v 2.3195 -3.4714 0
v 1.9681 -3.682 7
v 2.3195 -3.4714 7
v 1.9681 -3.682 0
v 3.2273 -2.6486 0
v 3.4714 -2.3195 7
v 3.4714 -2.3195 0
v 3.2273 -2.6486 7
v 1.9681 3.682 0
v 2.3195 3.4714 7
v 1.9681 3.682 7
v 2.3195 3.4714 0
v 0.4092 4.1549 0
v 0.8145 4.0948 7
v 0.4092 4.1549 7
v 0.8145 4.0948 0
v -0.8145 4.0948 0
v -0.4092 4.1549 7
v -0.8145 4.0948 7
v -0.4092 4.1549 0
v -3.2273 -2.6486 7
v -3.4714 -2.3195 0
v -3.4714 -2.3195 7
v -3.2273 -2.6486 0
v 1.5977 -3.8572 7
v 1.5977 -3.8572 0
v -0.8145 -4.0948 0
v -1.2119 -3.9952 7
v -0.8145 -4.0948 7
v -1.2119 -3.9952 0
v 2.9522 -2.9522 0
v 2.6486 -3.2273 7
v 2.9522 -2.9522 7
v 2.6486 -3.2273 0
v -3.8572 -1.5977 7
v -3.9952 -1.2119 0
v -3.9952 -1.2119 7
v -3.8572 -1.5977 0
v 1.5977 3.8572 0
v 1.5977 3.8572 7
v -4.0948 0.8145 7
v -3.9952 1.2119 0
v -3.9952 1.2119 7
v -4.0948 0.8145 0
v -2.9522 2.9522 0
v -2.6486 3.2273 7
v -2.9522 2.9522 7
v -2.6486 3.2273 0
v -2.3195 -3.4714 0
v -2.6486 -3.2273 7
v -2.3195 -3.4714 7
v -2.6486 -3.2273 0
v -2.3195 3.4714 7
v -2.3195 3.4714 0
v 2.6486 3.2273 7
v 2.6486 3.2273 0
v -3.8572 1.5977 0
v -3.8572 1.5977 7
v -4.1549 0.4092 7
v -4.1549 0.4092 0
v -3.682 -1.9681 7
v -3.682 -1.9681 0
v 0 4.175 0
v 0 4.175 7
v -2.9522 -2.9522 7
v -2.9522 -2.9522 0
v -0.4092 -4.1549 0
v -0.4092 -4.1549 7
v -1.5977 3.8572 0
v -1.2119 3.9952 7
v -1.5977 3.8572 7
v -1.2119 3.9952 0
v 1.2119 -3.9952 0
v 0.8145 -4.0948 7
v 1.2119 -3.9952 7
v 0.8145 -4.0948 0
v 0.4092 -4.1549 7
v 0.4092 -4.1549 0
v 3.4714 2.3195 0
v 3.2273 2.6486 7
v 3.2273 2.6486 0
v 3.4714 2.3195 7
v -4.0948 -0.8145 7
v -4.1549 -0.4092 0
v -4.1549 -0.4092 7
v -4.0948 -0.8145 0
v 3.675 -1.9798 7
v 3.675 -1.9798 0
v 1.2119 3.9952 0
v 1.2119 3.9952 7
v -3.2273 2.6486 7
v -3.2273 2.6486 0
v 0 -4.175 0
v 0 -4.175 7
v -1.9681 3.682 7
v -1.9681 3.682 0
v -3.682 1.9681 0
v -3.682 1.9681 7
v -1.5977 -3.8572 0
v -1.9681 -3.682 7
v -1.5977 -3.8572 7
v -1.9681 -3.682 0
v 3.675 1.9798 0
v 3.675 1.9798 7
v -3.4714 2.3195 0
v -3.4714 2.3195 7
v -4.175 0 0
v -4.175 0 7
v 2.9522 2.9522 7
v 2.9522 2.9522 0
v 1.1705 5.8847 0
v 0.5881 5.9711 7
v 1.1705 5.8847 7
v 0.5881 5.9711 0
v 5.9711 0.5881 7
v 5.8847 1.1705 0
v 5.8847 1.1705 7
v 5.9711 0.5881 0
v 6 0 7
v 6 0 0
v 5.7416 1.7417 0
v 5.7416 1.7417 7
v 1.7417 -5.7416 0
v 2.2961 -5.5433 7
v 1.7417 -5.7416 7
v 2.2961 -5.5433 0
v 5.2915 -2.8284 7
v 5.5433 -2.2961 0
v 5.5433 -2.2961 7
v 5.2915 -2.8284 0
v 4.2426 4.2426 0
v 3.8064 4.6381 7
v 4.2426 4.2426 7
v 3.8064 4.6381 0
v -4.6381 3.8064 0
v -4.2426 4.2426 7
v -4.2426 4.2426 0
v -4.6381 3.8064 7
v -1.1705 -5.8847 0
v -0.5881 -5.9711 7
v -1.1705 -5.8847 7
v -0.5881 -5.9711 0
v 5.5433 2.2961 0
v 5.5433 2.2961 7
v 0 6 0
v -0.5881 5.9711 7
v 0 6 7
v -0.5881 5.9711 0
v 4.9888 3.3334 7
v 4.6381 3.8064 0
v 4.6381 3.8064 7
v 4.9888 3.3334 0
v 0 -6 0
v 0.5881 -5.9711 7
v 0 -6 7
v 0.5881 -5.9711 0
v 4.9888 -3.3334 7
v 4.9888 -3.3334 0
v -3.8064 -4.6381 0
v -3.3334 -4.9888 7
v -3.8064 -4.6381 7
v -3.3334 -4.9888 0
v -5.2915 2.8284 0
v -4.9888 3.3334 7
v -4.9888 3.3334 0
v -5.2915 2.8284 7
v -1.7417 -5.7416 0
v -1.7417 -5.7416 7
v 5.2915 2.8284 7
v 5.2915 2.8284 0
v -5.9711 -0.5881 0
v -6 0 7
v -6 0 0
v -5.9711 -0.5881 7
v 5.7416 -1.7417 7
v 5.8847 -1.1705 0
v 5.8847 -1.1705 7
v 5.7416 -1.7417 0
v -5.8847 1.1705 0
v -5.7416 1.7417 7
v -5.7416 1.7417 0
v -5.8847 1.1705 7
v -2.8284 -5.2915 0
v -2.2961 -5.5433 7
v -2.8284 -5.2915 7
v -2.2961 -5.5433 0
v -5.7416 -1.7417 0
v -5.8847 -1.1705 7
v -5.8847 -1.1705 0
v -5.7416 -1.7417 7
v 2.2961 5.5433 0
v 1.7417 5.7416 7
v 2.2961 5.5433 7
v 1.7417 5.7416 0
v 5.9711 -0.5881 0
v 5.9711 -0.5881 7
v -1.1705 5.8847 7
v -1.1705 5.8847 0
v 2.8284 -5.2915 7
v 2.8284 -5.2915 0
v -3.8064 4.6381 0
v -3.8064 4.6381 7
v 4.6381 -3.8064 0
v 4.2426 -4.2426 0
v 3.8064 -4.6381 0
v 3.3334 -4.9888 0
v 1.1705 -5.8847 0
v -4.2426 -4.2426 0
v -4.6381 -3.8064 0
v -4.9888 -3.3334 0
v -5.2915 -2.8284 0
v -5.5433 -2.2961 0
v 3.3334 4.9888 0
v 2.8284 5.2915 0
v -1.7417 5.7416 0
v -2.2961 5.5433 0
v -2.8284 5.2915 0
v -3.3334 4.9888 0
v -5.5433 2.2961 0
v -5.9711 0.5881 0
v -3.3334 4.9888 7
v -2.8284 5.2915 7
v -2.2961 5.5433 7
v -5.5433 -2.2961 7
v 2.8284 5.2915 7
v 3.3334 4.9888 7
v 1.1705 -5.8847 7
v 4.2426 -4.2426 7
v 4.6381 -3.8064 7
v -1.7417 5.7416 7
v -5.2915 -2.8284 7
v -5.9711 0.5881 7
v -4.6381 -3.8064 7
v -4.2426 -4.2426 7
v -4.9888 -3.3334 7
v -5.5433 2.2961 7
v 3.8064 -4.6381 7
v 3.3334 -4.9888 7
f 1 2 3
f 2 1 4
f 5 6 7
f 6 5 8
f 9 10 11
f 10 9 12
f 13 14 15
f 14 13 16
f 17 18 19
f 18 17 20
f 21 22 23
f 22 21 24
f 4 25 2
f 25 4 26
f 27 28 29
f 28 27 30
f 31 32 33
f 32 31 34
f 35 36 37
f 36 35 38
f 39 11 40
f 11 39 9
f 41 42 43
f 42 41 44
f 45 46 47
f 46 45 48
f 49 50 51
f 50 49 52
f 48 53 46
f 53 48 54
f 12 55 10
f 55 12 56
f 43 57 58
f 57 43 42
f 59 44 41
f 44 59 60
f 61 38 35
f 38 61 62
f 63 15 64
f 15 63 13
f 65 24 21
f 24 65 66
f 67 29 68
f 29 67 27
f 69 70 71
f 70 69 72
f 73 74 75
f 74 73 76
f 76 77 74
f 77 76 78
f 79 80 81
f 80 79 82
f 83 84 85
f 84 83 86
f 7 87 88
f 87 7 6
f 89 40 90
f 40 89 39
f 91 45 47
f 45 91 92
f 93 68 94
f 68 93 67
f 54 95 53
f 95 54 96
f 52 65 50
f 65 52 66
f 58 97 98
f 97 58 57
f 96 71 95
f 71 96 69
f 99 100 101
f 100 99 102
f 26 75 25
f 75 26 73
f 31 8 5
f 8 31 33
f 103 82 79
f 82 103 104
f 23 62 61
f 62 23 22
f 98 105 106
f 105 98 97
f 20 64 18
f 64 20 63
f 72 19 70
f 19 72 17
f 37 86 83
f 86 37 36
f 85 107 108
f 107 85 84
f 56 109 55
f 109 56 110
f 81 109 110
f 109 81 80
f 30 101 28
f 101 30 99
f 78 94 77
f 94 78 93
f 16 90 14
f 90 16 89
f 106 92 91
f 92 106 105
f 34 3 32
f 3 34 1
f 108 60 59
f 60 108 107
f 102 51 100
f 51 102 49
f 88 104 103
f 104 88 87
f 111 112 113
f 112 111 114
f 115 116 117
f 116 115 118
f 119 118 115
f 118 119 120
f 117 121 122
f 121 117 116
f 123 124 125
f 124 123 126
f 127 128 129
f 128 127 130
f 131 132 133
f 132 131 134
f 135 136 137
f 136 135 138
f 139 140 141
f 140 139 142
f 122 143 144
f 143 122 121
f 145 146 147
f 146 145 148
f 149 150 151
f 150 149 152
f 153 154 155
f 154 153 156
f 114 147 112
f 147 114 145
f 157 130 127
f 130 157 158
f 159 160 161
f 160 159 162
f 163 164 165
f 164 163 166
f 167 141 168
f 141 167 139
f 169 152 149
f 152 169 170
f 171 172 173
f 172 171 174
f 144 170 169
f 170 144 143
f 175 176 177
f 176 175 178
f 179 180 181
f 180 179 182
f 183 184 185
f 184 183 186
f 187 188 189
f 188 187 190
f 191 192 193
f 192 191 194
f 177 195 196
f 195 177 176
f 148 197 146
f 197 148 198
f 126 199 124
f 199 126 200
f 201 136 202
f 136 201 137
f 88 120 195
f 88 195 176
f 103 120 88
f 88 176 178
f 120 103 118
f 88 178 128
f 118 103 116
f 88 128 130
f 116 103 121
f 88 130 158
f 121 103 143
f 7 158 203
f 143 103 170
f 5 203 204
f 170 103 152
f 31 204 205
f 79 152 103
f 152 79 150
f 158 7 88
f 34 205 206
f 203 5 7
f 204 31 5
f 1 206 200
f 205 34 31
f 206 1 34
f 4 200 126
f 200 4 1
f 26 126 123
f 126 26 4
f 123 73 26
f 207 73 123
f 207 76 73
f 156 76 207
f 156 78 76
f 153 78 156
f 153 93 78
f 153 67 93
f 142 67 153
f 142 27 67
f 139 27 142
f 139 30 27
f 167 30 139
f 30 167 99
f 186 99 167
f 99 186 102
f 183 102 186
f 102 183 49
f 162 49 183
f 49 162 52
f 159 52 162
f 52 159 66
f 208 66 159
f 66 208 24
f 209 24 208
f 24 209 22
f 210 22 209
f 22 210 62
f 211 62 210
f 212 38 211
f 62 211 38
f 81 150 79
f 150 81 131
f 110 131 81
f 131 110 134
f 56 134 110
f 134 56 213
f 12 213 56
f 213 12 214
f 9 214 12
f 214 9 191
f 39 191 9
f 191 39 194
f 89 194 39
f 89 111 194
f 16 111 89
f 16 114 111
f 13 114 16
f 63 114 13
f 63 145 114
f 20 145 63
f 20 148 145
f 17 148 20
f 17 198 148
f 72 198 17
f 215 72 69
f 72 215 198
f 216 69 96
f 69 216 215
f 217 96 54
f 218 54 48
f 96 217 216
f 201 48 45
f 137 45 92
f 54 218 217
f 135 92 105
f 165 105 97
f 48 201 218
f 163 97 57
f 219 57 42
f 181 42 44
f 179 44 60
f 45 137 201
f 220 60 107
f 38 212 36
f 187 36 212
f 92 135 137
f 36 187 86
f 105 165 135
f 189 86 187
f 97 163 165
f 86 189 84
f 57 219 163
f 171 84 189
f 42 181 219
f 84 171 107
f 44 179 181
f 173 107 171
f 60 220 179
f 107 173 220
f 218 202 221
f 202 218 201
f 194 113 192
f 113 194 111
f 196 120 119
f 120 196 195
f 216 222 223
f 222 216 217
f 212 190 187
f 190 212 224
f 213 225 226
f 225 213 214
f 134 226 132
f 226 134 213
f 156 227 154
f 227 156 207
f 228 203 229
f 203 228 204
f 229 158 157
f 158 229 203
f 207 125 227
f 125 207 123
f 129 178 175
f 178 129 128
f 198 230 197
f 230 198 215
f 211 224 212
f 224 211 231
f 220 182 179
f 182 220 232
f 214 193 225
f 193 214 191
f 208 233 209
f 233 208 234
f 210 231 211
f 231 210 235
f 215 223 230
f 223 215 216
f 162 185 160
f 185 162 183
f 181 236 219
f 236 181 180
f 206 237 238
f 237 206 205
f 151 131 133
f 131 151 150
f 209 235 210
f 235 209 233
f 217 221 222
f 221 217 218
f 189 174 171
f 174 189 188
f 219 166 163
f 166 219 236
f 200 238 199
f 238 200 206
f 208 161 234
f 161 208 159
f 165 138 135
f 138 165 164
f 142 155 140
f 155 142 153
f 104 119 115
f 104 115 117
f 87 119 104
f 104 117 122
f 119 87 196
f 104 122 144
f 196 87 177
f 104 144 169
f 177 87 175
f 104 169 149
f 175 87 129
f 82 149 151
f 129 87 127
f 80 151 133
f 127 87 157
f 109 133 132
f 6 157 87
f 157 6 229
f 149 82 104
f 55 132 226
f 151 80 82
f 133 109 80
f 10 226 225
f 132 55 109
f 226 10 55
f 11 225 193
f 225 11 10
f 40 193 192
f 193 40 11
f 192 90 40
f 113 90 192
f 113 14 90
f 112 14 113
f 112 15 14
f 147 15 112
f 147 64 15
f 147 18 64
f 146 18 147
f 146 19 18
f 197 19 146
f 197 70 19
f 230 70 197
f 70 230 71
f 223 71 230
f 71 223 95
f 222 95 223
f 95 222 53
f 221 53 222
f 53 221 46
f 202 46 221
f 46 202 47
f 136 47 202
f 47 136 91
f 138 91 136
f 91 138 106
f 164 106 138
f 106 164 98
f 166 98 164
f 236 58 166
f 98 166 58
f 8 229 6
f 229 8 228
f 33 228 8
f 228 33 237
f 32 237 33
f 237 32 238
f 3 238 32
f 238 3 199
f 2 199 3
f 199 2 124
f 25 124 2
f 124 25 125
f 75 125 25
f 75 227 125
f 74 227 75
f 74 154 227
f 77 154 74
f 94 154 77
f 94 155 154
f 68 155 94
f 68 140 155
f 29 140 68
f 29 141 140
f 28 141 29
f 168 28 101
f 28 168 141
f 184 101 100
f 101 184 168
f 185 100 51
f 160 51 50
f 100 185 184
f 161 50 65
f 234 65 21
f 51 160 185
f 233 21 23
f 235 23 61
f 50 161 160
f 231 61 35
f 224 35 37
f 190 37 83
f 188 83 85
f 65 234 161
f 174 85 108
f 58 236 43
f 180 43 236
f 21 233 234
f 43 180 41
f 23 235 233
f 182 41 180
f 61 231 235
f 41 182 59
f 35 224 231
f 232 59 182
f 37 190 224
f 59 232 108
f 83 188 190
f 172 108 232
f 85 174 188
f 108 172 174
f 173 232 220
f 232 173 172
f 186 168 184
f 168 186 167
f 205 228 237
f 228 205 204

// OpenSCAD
// Gen-DI — gap sleeve: rigid spacer on the shaft BETWEEN the two rotor carriers (passes through the stator
// hole). Length = m2m, so it sets the magnet gap and carries the full magnet pull. Print x1, upright.
include <parameters.scad>;
$fn = 64;
// D-flat keyed bore: flat faces +X (angle 0 = magnet pocket 0 = index notch)
module dflat_bore(h) {
    intersection() {
        cylinder(d=shaft_bore, h=h);
        translate([-shaft_bore, -shaft_bore, 0]) cube([shaft_bore + dflat_x, 2*shaft_bore, h]);
    }
}

difference() {
    cylinder(d=sleeve_od, h=m2m);
    translate([0, 0, -0.1]) dflat_bore(m2m + 0.2);
}
